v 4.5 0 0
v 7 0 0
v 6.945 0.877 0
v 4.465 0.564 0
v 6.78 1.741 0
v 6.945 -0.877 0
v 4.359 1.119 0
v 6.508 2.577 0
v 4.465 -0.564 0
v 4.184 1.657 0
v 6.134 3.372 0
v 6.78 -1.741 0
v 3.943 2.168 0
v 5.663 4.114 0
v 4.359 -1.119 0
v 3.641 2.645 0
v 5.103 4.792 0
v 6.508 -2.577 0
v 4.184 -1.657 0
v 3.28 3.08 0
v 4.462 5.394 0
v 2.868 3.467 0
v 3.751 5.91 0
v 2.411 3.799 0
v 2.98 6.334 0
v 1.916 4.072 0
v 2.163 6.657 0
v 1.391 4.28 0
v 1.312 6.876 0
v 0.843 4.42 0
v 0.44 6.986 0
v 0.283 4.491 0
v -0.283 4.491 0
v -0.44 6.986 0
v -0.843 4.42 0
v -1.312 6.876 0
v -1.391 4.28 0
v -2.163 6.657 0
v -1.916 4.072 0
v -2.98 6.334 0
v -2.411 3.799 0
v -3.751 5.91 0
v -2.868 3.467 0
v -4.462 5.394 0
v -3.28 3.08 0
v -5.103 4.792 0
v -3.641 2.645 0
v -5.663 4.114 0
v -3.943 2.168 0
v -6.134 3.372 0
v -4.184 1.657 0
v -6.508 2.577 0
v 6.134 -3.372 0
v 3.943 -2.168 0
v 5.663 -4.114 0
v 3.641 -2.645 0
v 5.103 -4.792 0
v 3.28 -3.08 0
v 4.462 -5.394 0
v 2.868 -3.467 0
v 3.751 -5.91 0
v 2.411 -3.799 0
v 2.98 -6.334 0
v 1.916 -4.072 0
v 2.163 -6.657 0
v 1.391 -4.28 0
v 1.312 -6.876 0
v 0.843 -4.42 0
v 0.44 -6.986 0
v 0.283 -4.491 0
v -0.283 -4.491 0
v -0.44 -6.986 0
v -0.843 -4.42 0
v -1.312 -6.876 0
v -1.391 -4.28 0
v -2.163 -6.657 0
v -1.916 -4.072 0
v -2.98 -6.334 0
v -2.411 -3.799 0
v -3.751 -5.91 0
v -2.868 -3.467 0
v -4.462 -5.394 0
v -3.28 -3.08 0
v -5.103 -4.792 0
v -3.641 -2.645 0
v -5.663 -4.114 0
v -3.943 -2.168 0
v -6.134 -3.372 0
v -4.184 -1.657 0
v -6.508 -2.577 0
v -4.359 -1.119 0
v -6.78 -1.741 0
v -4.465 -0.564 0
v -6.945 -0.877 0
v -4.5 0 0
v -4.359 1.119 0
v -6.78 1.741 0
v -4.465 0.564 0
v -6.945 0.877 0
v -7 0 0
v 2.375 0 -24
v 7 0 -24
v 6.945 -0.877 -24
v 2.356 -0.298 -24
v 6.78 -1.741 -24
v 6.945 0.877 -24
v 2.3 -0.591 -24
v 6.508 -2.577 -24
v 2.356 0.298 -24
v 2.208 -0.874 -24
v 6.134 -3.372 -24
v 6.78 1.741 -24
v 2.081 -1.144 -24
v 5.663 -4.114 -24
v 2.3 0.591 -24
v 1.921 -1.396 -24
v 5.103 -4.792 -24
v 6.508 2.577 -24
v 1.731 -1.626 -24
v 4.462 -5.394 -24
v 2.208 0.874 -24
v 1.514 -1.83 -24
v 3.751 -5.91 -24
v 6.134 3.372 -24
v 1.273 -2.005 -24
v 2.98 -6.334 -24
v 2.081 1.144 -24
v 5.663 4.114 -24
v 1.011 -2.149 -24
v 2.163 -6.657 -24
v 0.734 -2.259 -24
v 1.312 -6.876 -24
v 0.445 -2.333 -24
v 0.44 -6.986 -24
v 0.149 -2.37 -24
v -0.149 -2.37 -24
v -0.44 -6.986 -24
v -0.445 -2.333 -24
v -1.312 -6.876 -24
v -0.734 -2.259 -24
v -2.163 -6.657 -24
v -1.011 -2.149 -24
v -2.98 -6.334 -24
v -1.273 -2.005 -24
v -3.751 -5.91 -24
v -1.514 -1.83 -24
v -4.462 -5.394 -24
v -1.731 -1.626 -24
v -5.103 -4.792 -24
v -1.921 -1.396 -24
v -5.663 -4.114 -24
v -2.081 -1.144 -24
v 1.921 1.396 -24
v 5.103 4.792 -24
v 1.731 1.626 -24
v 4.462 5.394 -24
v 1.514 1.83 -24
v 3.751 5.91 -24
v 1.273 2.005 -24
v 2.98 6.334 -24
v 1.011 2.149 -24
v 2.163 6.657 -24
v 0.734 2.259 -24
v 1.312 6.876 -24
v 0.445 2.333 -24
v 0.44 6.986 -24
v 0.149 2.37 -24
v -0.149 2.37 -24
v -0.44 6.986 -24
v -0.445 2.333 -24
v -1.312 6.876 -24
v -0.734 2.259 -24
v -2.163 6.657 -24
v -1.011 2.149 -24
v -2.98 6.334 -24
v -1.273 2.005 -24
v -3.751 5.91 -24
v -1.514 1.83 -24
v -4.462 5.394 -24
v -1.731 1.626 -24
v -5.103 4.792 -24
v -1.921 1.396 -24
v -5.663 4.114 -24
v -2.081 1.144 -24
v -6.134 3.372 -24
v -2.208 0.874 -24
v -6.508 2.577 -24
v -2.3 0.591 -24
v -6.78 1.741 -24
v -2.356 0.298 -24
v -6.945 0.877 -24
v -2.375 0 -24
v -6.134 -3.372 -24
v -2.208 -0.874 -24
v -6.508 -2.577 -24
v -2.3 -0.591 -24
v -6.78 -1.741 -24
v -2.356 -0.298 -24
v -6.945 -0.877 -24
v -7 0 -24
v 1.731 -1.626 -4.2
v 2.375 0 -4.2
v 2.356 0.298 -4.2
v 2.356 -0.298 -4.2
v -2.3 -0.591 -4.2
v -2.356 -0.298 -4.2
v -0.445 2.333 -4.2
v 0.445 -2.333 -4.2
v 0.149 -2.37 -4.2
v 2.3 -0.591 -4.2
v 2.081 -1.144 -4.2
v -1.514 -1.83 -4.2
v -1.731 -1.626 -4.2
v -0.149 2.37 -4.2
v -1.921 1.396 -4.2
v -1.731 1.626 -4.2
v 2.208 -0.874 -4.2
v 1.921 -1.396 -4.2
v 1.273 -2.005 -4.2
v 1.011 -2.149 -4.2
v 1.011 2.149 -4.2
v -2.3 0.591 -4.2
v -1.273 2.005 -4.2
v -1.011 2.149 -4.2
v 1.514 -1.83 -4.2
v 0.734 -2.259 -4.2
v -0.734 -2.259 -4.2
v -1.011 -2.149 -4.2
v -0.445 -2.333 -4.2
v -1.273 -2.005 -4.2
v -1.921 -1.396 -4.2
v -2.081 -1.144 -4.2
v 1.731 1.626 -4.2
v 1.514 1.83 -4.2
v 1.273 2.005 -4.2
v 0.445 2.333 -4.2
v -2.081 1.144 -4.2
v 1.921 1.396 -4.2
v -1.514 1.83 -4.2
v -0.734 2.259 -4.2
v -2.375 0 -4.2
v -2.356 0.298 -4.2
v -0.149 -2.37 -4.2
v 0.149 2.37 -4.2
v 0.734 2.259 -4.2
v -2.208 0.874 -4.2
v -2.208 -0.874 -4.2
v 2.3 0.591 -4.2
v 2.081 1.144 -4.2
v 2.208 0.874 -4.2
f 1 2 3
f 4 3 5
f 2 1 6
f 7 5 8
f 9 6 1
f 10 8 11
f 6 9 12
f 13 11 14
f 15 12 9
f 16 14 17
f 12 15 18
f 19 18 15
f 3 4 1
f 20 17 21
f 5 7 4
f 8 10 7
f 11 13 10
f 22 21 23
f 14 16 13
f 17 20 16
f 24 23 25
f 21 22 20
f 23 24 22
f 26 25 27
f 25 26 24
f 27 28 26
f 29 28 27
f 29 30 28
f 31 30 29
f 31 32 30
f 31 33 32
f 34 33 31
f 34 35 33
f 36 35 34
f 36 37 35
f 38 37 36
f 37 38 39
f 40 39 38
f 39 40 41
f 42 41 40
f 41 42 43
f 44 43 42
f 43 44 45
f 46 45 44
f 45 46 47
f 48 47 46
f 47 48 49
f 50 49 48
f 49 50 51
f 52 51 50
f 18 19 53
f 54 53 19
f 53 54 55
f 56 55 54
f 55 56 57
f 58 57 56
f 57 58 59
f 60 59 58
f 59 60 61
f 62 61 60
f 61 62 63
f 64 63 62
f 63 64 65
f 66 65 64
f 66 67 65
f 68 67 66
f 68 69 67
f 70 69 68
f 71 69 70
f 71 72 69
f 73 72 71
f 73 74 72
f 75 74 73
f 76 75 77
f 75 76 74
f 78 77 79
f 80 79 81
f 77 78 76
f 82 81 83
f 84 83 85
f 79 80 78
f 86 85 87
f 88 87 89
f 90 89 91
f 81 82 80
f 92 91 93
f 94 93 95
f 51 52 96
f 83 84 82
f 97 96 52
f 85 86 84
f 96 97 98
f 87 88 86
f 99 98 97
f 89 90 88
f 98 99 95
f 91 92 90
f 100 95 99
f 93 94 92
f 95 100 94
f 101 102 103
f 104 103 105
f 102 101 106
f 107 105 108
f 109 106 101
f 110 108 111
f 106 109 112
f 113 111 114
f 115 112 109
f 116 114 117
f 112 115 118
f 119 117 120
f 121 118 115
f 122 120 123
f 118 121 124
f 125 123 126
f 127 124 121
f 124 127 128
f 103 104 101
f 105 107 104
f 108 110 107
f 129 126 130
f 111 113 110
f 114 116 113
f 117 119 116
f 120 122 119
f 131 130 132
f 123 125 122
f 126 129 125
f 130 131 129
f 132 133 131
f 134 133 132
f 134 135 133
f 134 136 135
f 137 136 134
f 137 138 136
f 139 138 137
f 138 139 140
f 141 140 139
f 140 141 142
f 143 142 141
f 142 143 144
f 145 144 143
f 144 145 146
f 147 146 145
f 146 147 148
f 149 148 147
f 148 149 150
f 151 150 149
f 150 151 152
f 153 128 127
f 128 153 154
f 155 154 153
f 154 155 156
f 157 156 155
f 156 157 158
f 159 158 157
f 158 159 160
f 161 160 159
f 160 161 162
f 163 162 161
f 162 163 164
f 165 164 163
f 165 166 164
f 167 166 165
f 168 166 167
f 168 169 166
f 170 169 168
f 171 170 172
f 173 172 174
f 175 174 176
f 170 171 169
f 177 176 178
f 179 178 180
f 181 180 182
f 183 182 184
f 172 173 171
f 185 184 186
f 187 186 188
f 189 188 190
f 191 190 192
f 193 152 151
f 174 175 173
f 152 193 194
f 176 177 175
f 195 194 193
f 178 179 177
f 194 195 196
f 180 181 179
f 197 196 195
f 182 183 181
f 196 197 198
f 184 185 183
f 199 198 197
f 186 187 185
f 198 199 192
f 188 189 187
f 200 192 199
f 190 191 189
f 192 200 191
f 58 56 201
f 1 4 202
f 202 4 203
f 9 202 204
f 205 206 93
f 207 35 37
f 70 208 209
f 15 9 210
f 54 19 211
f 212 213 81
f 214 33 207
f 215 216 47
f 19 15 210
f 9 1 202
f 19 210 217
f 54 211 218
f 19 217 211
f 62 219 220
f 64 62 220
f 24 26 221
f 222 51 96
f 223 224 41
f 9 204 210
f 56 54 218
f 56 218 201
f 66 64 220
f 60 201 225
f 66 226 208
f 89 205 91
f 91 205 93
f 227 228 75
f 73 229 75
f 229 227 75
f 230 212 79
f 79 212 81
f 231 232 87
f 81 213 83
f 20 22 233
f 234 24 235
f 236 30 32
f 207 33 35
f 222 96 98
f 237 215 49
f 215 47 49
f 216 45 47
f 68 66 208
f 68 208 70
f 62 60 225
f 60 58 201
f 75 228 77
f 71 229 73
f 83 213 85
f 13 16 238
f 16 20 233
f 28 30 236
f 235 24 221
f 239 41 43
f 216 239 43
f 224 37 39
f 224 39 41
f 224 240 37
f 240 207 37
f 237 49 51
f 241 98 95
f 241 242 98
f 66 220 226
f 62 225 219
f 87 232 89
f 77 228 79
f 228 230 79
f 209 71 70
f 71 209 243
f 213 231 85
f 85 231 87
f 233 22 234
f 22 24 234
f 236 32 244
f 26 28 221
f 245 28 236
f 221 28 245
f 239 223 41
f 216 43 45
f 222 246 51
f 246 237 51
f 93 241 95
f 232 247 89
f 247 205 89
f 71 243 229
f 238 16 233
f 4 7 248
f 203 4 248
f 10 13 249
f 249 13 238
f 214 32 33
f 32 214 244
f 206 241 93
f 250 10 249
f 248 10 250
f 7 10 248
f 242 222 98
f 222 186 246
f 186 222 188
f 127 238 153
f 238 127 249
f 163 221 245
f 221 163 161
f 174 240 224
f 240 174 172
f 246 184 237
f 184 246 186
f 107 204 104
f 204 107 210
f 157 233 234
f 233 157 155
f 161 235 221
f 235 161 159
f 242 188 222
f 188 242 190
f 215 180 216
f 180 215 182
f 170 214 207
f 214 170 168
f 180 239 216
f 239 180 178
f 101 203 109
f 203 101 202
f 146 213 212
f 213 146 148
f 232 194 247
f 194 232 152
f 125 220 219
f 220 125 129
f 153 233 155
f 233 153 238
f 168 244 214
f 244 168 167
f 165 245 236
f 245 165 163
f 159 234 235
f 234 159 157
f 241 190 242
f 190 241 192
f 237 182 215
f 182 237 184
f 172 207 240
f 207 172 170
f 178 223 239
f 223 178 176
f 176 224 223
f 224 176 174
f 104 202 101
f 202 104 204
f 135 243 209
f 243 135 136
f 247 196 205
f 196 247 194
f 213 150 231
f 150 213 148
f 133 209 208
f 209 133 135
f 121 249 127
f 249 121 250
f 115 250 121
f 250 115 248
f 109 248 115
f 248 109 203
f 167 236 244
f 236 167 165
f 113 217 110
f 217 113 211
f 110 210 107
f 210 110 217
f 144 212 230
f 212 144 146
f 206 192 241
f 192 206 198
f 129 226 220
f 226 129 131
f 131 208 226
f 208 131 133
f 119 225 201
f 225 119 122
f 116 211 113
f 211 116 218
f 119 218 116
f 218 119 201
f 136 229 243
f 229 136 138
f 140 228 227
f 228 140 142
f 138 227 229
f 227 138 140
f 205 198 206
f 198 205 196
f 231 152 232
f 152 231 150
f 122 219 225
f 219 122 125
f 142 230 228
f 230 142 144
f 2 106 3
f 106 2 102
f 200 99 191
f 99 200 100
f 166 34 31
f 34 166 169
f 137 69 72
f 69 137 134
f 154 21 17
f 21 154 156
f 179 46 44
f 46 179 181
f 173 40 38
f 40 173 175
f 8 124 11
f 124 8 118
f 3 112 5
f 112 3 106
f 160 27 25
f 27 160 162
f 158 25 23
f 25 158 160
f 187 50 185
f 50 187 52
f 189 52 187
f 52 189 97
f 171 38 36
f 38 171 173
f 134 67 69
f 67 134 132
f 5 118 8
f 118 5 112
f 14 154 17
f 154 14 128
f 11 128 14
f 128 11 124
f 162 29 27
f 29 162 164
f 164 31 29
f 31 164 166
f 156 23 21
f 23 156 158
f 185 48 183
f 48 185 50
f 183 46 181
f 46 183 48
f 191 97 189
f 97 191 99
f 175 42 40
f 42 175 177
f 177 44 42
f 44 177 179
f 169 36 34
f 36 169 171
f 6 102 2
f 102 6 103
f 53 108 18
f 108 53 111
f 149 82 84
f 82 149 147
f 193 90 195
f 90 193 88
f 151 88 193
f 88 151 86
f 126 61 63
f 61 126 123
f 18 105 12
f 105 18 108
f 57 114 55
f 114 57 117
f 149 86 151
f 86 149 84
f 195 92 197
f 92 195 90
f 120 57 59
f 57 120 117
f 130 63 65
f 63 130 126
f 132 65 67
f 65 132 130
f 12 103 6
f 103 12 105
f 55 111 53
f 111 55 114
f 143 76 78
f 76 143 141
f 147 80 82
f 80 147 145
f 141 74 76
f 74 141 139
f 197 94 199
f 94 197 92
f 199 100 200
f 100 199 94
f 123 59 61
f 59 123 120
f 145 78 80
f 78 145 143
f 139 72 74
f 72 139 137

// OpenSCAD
$fn = 50;


difference() {
	union() {
		translate(v = [0, 0, -24.0000000000]) {
			cylinder(h = 24, r = 7.0000000000);
		}
		cylinder(h = 0, r = 13.0000000000);
	}
	union() {
		translate(v = [0, 0, 0]) {
			rotate(a = [0, 0, 0]) {
				difference() {
					union() {
						#translate(v = [0, 0, -24.0000000000]) {
							cylinder(h = 24, r = 2.2500000000);
						}
						#translate(v = [0, 0, -4.2000000000]) {
							cylinder(h = 4.2000000000, r = 7.0000000000, r1 = 2.3750000000, r2 = 4.5000000000);
						}
						#translate(v = [0, 0, -24.0000000000]) {
							cylinder(h = 24, r = 2.3750000000);
						}
						#translate(v = [0, 0, -24.0000000000]) {
							cylinder(h = 24, r = 2.2500000000);
						}
					}
					union();
				}
			}
		}
	}
}
